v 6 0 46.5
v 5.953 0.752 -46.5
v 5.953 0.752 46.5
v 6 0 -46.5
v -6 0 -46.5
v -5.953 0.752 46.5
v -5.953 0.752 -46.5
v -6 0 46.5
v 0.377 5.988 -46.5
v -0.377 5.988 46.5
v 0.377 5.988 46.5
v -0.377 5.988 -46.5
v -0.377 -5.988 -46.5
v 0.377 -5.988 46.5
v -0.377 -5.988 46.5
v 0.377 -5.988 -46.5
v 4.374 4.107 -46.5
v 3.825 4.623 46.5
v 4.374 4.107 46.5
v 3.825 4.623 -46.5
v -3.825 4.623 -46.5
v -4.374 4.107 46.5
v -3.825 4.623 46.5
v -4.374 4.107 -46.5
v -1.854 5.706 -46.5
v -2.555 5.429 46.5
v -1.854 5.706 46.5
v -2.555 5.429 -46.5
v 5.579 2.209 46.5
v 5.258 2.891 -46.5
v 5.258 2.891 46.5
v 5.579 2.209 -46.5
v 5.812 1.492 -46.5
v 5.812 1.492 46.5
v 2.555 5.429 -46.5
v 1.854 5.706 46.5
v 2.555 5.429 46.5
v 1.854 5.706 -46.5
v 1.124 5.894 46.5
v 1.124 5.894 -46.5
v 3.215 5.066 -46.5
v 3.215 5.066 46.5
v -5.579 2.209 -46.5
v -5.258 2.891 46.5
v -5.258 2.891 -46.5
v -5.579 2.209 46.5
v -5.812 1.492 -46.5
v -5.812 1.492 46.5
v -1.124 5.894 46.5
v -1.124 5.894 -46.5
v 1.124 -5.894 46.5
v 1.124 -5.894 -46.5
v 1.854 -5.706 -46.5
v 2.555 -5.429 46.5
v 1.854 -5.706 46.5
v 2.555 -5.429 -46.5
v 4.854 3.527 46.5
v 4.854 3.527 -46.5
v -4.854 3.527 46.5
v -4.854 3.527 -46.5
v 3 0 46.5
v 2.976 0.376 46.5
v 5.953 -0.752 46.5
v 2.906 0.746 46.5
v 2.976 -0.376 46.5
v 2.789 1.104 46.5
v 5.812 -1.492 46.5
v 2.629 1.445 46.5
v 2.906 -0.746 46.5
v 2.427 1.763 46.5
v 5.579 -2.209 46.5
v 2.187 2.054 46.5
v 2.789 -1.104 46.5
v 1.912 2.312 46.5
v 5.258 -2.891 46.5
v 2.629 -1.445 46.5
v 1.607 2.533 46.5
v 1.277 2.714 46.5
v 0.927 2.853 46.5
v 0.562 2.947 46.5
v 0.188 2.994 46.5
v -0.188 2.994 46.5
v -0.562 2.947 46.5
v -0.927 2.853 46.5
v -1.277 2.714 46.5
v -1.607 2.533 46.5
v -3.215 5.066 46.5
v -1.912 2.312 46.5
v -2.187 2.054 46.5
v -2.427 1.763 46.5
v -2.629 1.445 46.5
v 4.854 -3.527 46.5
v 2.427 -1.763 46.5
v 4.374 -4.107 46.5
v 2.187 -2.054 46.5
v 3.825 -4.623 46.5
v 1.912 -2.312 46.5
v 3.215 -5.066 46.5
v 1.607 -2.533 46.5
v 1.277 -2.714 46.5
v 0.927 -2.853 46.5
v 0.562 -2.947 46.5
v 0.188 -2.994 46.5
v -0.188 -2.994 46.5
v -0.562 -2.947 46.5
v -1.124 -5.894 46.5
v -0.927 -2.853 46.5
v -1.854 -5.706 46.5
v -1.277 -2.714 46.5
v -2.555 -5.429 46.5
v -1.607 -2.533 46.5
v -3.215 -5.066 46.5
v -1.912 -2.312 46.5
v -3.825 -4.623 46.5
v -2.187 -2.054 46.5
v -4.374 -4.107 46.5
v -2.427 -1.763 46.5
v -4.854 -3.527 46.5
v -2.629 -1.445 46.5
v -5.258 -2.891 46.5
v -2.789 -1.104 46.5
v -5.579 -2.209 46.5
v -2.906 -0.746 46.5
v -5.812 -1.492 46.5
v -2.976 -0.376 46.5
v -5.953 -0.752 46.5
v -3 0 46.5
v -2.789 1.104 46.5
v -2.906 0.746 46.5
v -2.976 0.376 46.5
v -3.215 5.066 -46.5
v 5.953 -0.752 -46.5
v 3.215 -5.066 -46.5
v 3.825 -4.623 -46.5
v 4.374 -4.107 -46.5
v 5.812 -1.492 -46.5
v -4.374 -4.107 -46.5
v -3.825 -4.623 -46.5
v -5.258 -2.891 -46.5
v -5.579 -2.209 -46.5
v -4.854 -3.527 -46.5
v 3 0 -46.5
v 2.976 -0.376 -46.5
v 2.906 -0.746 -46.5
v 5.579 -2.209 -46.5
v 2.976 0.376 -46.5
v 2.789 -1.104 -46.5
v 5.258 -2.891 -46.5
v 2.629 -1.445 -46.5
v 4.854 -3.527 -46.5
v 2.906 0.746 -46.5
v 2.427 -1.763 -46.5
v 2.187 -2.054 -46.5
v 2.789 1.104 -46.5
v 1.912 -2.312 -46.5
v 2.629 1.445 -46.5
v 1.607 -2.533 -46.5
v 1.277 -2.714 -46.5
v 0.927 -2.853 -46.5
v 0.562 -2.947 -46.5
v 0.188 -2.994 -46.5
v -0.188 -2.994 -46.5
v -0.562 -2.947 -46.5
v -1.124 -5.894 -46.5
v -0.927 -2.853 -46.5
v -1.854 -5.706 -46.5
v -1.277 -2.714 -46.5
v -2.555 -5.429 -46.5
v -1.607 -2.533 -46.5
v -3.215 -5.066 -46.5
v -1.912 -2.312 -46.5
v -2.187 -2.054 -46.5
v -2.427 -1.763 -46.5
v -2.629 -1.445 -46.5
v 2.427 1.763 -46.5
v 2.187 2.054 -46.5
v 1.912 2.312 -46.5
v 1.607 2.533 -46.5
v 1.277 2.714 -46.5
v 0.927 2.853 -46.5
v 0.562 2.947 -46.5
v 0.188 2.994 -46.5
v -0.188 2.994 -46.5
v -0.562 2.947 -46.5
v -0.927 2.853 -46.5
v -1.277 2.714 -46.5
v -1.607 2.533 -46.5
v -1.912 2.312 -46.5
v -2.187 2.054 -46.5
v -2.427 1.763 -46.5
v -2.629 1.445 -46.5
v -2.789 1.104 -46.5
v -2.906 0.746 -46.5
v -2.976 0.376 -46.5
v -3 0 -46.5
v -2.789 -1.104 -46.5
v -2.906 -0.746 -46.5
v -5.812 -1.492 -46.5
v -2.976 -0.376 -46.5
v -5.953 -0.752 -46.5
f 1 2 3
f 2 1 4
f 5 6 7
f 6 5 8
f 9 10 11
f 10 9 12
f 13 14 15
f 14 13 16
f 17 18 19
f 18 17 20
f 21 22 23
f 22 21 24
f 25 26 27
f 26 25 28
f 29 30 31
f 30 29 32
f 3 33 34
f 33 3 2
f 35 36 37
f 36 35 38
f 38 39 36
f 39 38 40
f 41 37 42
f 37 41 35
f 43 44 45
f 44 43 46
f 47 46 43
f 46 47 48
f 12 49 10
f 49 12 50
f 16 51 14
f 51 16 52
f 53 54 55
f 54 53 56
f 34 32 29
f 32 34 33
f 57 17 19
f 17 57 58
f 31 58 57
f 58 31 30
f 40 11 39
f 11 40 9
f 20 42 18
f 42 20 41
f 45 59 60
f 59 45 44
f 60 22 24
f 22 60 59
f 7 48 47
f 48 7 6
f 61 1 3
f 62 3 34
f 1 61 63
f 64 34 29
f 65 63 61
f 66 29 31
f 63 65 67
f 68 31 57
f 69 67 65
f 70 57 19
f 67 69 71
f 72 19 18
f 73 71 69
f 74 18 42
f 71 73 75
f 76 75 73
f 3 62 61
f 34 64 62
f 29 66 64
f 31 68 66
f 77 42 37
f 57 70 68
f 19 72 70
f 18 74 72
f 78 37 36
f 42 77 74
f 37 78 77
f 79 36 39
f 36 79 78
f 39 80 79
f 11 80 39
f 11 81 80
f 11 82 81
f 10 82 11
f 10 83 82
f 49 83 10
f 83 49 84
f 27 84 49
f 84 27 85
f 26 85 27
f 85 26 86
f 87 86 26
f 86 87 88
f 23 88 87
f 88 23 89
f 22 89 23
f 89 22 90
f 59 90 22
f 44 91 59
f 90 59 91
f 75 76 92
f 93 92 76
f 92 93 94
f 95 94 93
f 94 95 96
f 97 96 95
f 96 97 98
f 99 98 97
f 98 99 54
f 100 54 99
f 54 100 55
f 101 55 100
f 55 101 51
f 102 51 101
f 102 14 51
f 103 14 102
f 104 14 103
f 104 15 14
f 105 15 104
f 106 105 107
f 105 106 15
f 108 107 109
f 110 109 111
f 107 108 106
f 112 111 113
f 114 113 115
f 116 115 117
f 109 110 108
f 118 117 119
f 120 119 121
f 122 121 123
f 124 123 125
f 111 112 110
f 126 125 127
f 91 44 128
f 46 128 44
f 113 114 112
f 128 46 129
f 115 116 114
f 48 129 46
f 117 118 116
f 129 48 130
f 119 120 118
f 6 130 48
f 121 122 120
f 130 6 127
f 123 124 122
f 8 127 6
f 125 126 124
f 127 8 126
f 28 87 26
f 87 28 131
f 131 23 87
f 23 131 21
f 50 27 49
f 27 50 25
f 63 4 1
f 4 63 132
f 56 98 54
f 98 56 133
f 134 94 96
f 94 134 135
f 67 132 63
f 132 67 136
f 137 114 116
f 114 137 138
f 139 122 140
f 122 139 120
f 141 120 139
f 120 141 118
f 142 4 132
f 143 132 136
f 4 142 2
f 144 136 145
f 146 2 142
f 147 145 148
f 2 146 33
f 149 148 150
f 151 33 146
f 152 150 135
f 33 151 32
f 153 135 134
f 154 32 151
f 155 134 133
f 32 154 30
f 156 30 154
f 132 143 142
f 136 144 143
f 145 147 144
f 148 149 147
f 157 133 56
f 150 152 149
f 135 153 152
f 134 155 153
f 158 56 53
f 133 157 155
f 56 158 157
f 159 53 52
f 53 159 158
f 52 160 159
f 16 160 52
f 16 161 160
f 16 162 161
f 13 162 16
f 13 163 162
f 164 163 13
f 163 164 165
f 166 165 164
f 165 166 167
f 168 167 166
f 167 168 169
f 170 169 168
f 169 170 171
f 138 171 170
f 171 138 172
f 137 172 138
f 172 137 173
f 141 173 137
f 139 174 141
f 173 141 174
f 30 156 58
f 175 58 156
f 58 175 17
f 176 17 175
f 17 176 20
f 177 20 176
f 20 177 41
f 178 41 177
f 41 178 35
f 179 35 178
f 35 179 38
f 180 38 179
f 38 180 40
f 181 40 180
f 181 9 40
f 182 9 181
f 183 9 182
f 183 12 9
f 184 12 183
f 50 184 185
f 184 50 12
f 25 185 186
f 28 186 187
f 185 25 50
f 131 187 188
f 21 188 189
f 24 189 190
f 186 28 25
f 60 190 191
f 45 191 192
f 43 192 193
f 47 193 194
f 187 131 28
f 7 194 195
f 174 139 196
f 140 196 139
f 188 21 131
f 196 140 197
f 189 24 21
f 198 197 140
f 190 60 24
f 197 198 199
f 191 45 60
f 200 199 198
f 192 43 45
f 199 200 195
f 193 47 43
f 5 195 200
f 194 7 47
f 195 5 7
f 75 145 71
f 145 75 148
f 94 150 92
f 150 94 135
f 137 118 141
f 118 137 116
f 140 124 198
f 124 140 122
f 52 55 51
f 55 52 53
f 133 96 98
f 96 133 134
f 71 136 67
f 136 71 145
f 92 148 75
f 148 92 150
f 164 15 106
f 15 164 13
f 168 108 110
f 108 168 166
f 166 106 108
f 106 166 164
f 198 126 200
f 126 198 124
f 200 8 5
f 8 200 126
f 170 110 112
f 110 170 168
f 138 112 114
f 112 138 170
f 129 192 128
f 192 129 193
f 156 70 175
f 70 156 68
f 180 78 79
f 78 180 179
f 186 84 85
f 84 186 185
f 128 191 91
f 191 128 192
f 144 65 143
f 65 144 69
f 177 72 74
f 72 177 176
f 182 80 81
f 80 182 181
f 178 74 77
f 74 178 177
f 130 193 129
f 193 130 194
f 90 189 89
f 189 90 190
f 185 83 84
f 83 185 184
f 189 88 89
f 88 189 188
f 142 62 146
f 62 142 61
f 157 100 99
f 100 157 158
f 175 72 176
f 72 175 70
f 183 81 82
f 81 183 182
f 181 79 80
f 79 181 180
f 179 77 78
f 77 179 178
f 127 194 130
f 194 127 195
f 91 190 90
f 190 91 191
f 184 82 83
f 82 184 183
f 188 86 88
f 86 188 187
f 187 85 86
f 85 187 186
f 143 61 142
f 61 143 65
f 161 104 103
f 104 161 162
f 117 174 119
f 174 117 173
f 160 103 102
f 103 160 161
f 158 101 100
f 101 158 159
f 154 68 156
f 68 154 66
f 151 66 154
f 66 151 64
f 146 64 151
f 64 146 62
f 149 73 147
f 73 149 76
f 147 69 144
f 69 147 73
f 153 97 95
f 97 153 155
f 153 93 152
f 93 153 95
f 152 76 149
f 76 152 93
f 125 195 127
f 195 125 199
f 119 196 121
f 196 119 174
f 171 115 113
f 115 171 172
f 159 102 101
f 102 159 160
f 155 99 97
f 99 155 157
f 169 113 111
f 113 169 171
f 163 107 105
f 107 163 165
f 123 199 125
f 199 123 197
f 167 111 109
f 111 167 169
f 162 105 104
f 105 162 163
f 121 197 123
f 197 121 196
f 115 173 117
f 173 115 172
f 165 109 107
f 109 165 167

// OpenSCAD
$fn = 50;


difference() {
	union() {
		translate(v = [0, 0, -46.5000000000]) {
			cylinder(h = 93, r = 6.0000000000);
		}
	}
	union() {
		translate(v = [0, 0, -100.0000000000]) {
			cylinder(h = 200, r = 3);
		}
	}
}
